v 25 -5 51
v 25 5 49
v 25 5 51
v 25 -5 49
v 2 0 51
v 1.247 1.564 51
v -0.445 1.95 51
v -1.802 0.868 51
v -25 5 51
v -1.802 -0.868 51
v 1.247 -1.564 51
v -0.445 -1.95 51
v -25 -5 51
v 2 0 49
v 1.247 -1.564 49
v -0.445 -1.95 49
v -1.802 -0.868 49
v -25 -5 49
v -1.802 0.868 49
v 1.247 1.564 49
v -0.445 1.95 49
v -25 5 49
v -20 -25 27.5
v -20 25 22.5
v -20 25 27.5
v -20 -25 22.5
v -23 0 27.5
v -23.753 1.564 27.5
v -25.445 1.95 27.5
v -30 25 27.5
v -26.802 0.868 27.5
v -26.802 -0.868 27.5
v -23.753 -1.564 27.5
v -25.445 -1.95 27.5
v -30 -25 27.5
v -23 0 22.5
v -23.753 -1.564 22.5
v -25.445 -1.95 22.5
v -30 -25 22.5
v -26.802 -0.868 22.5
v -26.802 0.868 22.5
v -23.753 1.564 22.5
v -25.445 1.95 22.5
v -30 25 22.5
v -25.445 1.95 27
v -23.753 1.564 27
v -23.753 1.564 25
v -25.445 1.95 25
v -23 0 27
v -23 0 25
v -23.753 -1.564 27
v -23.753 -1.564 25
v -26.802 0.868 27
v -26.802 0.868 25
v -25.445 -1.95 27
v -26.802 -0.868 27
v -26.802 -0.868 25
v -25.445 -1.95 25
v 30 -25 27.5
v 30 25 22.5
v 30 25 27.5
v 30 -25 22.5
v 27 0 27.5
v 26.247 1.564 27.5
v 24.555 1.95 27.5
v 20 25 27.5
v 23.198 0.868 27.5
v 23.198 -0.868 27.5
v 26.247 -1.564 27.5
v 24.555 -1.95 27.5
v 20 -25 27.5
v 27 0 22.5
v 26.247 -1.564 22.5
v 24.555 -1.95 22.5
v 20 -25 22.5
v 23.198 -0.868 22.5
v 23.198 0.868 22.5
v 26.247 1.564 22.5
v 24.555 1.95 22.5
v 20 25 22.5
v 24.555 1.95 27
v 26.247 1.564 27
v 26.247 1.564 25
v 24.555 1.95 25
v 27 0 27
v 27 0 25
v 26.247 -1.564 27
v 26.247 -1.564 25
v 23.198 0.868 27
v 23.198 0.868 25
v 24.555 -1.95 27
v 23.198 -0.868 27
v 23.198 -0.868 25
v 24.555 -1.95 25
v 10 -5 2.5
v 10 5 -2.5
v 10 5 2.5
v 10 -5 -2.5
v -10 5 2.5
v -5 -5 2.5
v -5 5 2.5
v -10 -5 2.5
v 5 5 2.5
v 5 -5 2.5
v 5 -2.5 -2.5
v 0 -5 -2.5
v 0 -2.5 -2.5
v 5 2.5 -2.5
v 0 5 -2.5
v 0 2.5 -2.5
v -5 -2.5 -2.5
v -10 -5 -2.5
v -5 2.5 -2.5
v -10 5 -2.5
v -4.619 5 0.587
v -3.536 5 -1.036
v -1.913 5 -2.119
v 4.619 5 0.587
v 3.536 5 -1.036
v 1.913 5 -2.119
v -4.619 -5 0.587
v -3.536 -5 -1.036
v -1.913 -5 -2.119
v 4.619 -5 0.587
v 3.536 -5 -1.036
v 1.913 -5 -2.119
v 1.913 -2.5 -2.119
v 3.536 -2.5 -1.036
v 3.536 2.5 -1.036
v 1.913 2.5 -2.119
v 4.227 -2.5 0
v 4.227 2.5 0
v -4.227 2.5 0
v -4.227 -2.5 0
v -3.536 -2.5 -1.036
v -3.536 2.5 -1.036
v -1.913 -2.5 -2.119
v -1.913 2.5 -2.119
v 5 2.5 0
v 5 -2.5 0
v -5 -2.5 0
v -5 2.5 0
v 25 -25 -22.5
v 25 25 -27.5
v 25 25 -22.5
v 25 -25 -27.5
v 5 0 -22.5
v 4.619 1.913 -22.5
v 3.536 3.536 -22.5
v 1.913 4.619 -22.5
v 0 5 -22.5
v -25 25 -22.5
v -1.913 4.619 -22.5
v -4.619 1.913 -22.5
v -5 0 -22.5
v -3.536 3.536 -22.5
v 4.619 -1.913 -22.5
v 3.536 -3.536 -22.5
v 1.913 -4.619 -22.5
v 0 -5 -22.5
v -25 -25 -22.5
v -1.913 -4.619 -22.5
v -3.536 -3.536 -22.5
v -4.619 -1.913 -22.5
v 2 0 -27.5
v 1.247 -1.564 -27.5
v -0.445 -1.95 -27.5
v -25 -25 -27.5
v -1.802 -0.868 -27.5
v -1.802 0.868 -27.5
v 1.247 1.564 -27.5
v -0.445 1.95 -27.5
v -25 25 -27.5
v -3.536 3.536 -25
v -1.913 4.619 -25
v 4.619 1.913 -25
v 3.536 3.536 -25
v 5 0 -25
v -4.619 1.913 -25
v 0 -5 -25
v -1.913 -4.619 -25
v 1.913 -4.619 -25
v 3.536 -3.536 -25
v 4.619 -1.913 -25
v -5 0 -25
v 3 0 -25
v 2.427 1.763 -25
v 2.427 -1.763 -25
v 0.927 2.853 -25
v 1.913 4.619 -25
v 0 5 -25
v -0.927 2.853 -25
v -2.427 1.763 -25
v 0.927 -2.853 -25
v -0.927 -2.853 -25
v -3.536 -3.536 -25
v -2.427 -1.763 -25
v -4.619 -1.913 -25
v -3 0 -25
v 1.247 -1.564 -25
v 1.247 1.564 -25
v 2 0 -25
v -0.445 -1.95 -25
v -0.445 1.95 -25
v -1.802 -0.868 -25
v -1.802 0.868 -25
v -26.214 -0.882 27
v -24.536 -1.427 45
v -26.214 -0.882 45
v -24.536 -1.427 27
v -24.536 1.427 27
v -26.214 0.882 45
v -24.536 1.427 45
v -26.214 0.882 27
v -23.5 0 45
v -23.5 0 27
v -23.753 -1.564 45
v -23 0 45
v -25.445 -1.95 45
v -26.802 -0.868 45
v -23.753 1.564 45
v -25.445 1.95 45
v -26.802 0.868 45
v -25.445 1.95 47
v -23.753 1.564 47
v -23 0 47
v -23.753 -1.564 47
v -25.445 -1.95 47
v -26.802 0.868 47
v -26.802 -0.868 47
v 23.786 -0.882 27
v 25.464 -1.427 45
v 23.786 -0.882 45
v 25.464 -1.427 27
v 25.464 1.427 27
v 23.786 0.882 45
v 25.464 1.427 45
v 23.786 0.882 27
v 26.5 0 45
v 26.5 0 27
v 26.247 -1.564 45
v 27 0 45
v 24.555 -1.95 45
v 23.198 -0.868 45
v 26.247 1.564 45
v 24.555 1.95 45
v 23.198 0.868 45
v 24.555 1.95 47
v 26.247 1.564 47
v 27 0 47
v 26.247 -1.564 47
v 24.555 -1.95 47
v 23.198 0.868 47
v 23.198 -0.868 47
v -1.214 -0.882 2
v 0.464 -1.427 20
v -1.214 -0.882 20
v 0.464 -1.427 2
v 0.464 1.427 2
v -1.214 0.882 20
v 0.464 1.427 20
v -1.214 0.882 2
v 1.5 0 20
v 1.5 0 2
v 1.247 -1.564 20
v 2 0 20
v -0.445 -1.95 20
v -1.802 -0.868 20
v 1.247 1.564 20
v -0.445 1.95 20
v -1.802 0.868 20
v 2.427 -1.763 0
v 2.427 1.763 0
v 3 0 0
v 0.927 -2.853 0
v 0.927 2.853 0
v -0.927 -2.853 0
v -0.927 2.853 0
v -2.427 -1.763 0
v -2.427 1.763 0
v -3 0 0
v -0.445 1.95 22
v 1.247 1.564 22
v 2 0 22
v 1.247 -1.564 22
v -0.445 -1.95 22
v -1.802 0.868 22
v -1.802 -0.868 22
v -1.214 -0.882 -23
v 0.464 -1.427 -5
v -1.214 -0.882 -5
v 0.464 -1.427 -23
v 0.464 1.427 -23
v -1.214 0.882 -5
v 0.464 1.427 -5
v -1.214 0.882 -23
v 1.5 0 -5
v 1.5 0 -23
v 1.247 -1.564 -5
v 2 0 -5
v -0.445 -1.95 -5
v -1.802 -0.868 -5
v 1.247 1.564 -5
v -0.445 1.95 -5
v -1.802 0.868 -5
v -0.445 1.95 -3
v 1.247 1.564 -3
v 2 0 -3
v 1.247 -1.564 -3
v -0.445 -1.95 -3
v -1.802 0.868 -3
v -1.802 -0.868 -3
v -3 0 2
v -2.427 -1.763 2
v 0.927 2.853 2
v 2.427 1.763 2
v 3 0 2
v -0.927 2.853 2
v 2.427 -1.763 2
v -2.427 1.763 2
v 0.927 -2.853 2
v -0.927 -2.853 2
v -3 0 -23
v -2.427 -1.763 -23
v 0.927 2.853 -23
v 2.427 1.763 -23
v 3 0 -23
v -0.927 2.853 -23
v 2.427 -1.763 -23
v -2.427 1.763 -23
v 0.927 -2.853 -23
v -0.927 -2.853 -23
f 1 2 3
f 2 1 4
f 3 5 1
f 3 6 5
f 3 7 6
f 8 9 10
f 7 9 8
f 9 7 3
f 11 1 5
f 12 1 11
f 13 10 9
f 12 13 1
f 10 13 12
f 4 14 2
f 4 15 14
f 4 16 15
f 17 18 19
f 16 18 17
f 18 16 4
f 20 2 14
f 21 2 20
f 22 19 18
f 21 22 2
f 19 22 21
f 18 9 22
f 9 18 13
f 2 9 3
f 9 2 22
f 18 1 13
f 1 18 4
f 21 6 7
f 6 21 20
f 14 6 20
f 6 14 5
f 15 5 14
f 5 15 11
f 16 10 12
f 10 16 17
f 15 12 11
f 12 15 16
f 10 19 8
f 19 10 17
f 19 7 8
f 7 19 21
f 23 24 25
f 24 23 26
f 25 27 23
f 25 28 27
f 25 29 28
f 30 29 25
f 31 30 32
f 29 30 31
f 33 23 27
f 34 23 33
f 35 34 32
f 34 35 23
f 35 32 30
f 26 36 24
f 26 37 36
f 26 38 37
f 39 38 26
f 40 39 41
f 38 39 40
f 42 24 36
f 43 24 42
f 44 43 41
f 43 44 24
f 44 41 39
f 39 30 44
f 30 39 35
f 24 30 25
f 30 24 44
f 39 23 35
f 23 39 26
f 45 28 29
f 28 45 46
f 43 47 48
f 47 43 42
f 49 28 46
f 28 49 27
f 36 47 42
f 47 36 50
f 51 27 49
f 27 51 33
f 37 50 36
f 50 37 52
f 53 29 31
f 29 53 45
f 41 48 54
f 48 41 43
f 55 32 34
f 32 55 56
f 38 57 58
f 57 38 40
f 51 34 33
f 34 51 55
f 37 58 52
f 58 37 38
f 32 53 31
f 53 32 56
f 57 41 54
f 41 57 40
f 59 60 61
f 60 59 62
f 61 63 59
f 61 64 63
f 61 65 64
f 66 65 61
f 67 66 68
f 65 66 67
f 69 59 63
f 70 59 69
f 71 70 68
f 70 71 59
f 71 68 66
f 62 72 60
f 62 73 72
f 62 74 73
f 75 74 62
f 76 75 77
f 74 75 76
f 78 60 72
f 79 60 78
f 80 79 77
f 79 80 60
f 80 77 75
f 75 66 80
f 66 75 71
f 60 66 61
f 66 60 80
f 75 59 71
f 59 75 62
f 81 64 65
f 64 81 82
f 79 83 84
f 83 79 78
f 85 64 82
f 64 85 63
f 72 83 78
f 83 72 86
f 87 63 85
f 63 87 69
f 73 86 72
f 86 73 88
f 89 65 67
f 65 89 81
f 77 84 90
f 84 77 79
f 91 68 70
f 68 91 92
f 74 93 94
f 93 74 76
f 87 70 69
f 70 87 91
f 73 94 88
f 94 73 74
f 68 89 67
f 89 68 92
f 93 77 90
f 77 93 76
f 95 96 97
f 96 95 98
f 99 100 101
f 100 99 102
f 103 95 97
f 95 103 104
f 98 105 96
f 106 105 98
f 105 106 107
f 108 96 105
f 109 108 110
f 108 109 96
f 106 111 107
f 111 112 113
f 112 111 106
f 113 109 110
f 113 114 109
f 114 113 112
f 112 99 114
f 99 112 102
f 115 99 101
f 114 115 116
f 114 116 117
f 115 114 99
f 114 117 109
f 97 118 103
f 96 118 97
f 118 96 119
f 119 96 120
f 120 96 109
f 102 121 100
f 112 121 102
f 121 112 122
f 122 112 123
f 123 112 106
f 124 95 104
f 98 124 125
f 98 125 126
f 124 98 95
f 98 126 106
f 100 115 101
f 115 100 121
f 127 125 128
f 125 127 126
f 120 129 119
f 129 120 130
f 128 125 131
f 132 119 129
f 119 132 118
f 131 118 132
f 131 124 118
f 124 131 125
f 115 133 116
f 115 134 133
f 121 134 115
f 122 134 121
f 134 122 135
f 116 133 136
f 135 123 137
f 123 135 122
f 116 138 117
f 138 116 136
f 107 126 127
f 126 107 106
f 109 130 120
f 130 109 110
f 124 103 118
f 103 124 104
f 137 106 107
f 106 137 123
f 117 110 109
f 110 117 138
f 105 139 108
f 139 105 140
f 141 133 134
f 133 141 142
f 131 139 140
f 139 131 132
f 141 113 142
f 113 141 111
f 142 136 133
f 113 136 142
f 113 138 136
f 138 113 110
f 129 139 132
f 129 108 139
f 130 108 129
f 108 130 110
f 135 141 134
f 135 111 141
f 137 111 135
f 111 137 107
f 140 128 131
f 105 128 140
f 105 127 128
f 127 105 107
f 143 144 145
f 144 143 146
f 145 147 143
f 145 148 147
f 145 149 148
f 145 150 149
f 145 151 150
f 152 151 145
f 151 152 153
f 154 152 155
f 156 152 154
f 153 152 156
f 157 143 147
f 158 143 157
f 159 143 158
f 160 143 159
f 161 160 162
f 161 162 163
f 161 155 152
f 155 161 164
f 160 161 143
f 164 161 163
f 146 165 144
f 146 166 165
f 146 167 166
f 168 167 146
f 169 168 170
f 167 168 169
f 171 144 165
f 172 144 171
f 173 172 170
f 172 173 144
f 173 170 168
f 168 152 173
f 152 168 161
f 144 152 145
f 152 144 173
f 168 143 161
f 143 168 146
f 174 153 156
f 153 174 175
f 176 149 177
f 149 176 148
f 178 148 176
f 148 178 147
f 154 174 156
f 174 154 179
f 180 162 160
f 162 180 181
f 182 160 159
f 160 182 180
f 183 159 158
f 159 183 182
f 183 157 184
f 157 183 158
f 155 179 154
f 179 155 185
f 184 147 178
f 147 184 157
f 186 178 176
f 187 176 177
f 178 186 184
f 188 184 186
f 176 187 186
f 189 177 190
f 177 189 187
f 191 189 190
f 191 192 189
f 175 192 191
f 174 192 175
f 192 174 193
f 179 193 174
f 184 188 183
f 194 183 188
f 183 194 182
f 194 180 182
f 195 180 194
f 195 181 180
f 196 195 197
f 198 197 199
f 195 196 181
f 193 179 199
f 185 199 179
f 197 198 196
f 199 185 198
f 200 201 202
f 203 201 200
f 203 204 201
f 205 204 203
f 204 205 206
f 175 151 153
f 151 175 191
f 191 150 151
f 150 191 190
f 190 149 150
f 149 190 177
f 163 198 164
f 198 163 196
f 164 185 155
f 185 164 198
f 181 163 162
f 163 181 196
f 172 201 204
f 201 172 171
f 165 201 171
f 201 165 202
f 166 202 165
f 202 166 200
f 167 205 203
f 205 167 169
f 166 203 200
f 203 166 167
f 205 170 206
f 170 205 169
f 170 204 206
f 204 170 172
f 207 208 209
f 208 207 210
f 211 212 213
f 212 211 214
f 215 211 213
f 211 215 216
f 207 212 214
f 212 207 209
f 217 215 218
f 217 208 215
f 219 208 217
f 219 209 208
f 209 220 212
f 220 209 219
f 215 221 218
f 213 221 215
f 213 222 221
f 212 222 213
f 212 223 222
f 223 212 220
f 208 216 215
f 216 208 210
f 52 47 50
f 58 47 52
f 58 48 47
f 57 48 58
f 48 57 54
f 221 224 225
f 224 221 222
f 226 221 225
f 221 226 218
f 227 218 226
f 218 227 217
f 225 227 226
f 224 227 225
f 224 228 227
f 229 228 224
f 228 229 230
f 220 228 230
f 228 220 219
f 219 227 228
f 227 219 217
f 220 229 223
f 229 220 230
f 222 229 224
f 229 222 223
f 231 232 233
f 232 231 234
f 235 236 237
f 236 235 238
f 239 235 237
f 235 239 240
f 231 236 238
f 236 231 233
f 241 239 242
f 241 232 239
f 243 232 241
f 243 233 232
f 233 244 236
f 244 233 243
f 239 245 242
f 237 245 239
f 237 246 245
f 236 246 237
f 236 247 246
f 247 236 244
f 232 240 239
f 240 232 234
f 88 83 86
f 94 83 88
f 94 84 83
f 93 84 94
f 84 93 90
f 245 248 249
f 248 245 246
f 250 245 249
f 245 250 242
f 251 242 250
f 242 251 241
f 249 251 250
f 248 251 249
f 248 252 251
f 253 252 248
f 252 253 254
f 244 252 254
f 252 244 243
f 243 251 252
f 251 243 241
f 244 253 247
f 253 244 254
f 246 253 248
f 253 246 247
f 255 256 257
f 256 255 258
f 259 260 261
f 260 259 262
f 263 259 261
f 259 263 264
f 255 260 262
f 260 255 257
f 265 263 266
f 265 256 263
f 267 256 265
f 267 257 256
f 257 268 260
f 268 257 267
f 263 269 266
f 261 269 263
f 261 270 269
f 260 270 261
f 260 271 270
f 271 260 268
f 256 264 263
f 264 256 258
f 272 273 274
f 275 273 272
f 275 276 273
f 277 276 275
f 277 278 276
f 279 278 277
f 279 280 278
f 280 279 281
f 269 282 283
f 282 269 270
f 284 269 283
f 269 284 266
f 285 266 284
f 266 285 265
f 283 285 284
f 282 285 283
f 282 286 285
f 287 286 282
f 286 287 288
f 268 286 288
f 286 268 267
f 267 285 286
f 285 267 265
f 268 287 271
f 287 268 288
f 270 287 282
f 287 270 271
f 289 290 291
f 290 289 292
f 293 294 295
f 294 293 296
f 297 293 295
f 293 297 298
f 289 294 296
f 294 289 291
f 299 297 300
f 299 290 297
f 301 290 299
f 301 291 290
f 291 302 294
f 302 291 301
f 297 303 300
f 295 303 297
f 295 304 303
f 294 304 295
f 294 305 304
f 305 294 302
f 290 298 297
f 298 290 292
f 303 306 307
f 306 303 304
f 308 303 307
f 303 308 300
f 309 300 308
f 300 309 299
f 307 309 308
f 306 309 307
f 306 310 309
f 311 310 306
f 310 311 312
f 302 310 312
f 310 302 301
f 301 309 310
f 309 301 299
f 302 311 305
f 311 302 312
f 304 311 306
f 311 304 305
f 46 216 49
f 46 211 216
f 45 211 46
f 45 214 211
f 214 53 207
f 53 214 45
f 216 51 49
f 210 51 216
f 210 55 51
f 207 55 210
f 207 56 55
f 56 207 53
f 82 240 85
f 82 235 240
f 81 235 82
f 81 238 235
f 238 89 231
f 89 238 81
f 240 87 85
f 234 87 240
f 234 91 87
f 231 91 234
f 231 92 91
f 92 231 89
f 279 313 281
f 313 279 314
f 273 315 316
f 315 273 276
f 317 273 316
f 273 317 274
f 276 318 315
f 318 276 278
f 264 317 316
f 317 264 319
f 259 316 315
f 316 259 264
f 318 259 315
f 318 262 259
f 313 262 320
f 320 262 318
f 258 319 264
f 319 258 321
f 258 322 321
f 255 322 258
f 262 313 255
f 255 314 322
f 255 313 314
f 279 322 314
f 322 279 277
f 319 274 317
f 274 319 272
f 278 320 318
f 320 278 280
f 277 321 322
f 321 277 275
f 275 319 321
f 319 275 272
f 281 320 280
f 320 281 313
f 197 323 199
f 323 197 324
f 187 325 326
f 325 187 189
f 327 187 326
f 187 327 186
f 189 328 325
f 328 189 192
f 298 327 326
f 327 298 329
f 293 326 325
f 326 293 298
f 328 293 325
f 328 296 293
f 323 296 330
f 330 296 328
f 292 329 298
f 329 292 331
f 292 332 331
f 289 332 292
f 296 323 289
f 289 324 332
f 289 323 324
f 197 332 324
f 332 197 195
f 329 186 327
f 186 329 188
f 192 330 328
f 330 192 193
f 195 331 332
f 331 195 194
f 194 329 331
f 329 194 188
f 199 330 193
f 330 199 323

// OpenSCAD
// Base Plate
module base_plate() {
    difference() {
        cube([50, 50, 5], center = true); // Main rectangular plate
        translate([0, 0, 2.5]) cylinder(r = 5, h = 5, center = true); // Protrusion
        translate([0, 0, -2.5]) cylinder(r = 2, h = 10, center = true); // Hole in the center
    }
}

// Side Plate
module side_plate() {
    difference() {
        cube([10, 50, 5], center = true); // Main rectangular plate
        translate([0, 0, -2.5]) cylinder(r = 2, h = 10, center = true); // Hole near the center
    }
}

// Connector Plate
module connector_plate() {
    difference() {
        cube([50, 10, 2], center = true); // Thin rectangular plate
        translate([0, 0, -1]) cylinder(r = 2, h = 4, center = true); // Hole in the center
    }
}

// Support Bracket
module support_bracket() {
    difference() {
        cube([20, 10, 5], center = true); // Main bracket
        translate([0, 0, 2.5]) rotate([90, 0, 0]) cylinder(r = 5, h = 10, center = true); // Curved edge
        translate([0, 0, -2.5]) cube([10, 5, 5], center = true); // Rectangular cutout
    }
}

// Fastener Bolt
module fastener_bolt() {
    union() {
        cylinder(r = 1.5, h = 20, center = false); // Bolt shaft
        translate([0, 0, 20]) cylinder(r = 2, h = 2, center = false); // Bolt head
    }
}

// Fastener Nut
module fastener_nut() {
    difference() {
        cylinder(r = 3, h = 2, center = false); // Hexagonal nut
        translate([0, 0, 1]) cylinder(r = 1.5, h = 4, center = true); // Threading inside
    }
}

// Assembly
module assembly() {
    // Layer 1: Connector Plate
    translate([0, 0, 50]) connector_plate();

    // Layer 2: Side Plates
    translate([-25, 0, 25]) side_plate();
    translate([25, 0, 25]) side_plate();

    // Layer 3: Support Bracket
    translate([0, 0, 0]) support_bracket();

    // Layer 4: Base Plate
    translate([0, 0, -25]) base_plate();

    // Fasteners
    translate([-25, 0, 25]) fastener_bolt();
    translate([25, 0, 25]) fastener_bolt();
    translate([0, 0, 0]) fastener_bolt();
    translate([0, 0, -25]) fastener_bolt();

    translate([-25, 0, 25]) fastener_nut();
    translate([25, 0, 25]) fastener_nut();
    translate([0, 0, 0]) fastener_nut();
    translate([0, 0, -25]) fastener_nut();
}

// Render the assembly
assembly();
